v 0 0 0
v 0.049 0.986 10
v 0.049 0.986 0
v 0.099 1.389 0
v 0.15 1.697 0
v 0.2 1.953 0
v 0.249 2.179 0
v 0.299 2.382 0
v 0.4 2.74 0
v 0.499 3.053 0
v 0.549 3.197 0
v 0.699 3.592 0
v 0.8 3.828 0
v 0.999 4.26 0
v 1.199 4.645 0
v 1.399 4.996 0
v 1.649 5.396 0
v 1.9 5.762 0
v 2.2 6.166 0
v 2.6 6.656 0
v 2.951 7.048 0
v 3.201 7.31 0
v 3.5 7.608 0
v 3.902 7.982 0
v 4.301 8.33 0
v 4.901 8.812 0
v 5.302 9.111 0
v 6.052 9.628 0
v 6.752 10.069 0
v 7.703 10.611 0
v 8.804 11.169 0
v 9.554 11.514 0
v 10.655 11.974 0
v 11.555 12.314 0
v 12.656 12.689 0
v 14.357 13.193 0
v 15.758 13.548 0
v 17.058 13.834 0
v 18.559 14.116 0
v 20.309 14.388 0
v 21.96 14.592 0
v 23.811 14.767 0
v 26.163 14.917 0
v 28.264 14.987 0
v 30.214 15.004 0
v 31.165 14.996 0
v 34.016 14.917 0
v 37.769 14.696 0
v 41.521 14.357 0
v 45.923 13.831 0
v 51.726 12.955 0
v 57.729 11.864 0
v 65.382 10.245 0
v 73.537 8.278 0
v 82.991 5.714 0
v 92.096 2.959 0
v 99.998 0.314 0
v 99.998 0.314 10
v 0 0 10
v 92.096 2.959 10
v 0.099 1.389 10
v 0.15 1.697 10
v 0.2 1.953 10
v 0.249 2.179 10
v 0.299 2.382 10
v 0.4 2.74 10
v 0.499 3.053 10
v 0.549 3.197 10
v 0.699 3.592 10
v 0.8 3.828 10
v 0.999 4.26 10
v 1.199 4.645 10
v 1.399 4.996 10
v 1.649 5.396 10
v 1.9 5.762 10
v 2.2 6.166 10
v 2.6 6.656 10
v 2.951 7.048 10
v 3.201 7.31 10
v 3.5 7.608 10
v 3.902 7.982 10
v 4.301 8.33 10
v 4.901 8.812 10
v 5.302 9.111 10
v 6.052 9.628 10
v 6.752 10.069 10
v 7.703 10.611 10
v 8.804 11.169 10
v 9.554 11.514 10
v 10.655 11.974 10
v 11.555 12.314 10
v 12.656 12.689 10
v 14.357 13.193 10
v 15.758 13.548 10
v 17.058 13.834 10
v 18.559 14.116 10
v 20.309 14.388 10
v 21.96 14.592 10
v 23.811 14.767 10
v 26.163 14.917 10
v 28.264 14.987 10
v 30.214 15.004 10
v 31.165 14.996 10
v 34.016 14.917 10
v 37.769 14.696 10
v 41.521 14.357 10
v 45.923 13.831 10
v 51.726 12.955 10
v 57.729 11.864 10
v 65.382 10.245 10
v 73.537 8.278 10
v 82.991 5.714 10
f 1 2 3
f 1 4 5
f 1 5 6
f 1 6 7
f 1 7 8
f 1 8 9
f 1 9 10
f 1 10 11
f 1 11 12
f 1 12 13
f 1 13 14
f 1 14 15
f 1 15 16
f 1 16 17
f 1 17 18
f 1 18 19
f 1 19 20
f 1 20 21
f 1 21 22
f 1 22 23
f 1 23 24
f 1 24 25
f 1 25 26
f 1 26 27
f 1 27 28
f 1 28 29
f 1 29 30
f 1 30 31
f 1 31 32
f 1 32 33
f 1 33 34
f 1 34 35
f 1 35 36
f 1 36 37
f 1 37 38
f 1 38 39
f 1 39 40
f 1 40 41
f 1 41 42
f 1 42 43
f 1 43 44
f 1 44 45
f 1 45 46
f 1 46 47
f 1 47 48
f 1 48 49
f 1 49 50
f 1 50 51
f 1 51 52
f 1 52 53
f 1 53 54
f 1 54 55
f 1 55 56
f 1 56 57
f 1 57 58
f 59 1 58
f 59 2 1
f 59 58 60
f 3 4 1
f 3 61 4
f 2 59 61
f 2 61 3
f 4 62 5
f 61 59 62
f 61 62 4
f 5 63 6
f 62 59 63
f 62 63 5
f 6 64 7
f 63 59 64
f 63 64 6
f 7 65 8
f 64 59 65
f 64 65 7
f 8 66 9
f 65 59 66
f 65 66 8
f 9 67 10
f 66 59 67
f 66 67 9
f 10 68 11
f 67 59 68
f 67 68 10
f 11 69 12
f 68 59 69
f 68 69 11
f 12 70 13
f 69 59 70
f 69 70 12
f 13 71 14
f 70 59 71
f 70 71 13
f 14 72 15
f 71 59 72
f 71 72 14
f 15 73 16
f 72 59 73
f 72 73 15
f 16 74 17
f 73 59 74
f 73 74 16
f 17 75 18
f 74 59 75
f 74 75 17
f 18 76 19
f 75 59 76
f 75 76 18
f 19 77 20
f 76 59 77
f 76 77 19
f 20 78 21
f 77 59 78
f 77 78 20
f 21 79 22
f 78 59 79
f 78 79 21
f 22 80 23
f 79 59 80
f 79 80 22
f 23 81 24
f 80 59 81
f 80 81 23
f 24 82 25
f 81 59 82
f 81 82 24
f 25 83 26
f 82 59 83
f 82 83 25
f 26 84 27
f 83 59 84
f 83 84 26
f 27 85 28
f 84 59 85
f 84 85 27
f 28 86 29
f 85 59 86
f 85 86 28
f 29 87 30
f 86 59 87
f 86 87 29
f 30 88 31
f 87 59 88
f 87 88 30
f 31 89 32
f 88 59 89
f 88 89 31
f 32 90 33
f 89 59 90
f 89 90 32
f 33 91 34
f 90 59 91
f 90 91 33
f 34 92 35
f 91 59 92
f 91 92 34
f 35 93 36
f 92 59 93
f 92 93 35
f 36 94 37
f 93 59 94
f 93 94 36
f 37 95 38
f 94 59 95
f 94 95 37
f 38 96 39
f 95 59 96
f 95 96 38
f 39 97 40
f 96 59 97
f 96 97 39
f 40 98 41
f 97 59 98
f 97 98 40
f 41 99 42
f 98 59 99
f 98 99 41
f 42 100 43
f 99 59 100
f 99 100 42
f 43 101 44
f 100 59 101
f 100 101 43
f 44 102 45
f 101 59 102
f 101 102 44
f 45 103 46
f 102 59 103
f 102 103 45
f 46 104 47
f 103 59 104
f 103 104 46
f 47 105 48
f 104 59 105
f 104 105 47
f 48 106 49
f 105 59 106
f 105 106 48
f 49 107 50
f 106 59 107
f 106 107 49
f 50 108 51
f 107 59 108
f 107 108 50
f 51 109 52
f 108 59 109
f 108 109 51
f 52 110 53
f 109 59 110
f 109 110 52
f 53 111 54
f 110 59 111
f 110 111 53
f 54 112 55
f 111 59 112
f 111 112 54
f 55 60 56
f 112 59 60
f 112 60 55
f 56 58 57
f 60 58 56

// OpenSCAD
// file: submodules/openscad_airfoils/naca.scad
// From https://github.com/openscad/documentation/blob/master/OpenSCAD_Tutorial/Tutorial_Files/chapter_9/naca.scad
function naca_half_thickness(x,t) = 5*t*(0.2969*sqrt(x) - 0.1260*x - 0.3516*pow(x,2) + 0.2843*pow(x,3) - 0.1015*pow(x,4));
function naca_top_coordinates(t,n) = [ for (x=[0:1/(n-1):1]) [x, naca_half_thickness(x,t)]];
function naca_bottom_coordinates(t,n) = [ for (x=[1:-1/(n-1):0]) [x, - naca_half_thickness(x,t)]];
function naca_coordinates(t,n) = concat(naca_top_coordinates(t,n), naca_bottom_coordinates(t,n));
module naca_airfoil(chord,t,n) {
    points = naca_coordinates(t,n);
    scale([chord,chord,1])
        polygon(points);
}
module naca_wing(span,chord,t,n,center=false) {
    linear_extrude(height=span,center=center) {
        naca_airfoil(chord,t,n);
    }
}

naca_bottom_coordinates(t=0.12, n=300);

//naca_airfoil(chord=10, t=0.12, n=300);
// main file
use <submodules/openscad_airfoils/naca.scad>


module naca_top_airfoil(chord,t,n) {
    points = naca_top_coordinates(t,n);
    scale([chord,chord,0])
        polygon(points);
}
linear_extrude(height = 10)
  naca_top_airfoil(100, 0.30, 2000);
